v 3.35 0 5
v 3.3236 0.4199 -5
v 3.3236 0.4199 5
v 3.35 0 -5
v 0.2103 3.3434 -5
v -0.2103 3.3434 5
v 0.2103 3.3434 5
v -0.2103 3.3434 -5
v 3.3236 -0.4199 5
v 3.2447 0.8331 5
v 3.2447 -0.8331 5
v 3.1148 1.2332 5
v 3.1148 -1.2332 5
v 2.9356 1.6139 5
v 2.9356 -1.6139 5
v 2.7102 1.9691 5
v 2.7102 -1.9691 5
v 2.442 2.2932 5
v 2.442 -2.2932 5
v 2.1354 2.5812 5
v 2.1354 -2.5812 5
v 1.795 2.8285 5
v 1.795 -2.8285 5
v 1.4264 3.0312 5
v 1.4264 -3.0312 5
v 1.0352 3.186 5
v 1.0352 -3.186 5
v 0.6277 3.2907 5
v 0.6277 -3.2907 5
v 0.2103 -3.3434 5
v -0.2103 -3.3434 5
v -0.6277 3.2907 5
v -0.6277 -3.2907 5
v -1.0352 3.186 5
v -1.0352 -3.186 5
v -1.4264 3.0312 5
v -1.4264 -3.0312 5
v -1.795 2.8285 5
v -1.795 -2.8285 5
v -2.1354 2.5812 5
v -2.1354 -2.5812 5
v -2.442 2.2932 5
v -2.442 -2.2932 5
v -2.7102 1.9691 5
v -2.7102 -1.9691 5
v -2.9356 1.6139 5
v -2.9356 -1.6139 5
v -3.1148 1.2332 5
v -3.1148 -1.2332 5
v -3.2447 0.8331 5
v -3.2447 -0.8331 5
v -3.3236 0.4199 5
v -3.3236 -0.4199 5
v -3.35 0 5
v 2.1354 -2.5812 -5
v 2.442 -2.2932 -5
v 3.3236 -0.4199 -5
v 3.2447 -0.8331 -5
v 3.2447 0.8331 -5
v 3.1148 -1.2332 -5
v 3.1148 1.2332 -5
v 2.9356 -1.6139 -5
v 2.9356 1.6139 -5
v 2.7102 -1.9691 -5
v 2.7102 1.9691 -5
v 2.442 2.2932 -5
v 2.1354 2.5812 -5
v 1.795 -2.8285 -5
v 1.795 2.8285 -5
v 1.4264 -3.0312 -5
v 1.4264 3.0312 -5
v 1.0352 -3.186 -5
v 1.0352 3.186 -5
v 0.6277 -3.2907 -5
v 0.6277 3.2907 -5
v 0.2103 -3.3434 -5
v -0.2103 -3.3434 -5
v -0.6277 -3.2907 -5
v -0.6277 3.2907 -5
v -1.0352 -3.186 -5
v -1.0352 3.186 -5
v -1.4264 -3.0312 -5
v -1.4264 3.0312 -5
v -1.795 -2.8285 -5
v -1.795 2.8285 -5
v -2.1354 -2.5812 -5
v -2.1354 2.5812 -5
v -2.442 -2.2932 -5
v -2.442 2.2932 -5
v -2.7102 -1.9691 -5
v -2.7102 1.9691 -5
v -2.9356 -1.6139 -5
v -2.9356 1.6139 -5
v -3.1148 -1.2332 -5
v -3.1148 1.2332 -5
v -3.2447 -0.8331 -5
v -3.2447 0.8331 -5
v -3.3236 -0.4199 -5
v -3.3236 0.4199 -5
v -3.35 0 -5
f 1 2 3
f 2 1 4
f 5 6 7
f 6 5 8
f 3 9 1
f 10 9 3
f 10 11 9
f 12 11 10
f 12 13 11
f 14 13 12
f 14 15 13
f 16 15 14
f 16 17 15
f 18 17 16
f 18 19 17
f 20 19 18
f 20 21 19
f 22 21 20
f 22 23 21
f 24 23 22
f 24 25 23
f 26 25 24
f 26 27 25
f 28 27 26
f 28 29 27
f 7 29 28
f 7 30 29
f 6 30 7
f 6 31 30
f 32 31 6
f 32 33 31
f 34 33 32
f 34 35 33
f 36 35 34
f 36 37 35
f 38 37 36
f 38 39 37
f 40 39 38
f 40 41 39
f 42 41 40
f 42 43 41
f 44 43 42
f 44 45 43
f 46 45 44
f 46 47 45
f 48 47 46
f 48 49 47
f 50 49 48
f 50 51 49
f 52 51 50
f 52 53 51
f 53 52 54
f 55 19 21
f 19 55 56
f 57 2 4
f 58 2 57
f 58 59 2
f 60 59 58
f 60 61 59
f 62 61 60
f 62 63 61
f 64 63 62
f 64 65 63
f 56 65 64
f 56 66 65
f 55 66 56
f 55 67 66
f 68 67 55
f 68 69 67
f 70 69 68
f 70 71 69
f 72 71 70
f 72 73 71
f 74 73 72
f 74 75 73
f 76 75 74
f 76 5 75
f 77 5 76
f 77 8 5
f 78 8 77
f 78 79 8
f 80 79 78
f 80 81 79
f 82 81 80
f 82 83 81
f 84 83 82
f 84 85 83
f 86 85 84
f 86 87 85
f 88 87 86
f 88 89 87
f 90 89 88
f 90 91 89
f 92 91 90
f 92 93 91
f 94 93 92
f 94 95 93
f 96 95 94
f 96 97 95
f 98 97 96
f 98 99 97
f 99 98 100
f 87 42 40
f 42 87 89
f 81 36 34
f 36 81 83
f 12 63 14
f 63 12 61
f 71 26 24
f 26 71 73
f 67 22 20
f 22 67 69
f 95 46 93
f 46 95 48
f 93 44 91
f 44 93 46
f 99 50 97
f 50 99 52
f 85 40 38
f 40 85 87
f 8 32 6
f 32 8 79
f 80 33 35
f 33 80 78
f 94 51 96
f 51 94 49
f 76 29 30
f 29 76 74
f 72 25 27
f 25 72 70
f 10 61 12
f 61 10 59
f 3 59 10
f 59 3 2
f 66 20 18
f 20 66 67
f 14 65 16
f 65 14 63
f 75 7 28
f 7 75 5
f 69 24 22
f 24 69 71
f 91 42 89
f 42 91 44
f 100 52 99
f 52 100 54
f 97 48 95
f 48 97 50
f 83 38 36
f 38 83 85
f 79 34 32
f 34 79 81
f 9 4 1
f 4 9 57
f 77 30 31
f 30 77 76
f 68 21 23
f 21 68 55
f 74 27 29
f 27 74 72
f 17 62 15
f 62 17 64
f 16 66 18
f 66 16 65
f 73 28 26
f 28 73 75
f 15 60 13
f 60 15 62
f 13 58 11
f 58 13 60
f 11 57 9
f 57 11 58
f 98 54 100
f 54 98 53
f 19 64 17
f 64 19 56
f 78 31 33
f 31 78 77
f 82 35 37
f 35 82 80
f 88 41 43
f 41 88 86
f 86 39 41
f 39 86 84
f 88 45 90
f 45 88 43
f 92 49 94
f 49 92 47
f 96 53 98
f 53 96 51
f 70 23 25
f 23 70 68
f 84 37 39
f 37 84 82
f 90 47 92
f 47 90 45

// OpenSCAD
$fn = 50;


difference() {
	union() {
		translate(v = [0, 0, -5.0000000000]) {
			cylinder(h = 10, r = 3.3500000000);
		}
	}
	union() {
		translate(v = [0, 0, -100.0000000000]) {
			cylinder(h = 200, r = 0);
		}
	}
}
